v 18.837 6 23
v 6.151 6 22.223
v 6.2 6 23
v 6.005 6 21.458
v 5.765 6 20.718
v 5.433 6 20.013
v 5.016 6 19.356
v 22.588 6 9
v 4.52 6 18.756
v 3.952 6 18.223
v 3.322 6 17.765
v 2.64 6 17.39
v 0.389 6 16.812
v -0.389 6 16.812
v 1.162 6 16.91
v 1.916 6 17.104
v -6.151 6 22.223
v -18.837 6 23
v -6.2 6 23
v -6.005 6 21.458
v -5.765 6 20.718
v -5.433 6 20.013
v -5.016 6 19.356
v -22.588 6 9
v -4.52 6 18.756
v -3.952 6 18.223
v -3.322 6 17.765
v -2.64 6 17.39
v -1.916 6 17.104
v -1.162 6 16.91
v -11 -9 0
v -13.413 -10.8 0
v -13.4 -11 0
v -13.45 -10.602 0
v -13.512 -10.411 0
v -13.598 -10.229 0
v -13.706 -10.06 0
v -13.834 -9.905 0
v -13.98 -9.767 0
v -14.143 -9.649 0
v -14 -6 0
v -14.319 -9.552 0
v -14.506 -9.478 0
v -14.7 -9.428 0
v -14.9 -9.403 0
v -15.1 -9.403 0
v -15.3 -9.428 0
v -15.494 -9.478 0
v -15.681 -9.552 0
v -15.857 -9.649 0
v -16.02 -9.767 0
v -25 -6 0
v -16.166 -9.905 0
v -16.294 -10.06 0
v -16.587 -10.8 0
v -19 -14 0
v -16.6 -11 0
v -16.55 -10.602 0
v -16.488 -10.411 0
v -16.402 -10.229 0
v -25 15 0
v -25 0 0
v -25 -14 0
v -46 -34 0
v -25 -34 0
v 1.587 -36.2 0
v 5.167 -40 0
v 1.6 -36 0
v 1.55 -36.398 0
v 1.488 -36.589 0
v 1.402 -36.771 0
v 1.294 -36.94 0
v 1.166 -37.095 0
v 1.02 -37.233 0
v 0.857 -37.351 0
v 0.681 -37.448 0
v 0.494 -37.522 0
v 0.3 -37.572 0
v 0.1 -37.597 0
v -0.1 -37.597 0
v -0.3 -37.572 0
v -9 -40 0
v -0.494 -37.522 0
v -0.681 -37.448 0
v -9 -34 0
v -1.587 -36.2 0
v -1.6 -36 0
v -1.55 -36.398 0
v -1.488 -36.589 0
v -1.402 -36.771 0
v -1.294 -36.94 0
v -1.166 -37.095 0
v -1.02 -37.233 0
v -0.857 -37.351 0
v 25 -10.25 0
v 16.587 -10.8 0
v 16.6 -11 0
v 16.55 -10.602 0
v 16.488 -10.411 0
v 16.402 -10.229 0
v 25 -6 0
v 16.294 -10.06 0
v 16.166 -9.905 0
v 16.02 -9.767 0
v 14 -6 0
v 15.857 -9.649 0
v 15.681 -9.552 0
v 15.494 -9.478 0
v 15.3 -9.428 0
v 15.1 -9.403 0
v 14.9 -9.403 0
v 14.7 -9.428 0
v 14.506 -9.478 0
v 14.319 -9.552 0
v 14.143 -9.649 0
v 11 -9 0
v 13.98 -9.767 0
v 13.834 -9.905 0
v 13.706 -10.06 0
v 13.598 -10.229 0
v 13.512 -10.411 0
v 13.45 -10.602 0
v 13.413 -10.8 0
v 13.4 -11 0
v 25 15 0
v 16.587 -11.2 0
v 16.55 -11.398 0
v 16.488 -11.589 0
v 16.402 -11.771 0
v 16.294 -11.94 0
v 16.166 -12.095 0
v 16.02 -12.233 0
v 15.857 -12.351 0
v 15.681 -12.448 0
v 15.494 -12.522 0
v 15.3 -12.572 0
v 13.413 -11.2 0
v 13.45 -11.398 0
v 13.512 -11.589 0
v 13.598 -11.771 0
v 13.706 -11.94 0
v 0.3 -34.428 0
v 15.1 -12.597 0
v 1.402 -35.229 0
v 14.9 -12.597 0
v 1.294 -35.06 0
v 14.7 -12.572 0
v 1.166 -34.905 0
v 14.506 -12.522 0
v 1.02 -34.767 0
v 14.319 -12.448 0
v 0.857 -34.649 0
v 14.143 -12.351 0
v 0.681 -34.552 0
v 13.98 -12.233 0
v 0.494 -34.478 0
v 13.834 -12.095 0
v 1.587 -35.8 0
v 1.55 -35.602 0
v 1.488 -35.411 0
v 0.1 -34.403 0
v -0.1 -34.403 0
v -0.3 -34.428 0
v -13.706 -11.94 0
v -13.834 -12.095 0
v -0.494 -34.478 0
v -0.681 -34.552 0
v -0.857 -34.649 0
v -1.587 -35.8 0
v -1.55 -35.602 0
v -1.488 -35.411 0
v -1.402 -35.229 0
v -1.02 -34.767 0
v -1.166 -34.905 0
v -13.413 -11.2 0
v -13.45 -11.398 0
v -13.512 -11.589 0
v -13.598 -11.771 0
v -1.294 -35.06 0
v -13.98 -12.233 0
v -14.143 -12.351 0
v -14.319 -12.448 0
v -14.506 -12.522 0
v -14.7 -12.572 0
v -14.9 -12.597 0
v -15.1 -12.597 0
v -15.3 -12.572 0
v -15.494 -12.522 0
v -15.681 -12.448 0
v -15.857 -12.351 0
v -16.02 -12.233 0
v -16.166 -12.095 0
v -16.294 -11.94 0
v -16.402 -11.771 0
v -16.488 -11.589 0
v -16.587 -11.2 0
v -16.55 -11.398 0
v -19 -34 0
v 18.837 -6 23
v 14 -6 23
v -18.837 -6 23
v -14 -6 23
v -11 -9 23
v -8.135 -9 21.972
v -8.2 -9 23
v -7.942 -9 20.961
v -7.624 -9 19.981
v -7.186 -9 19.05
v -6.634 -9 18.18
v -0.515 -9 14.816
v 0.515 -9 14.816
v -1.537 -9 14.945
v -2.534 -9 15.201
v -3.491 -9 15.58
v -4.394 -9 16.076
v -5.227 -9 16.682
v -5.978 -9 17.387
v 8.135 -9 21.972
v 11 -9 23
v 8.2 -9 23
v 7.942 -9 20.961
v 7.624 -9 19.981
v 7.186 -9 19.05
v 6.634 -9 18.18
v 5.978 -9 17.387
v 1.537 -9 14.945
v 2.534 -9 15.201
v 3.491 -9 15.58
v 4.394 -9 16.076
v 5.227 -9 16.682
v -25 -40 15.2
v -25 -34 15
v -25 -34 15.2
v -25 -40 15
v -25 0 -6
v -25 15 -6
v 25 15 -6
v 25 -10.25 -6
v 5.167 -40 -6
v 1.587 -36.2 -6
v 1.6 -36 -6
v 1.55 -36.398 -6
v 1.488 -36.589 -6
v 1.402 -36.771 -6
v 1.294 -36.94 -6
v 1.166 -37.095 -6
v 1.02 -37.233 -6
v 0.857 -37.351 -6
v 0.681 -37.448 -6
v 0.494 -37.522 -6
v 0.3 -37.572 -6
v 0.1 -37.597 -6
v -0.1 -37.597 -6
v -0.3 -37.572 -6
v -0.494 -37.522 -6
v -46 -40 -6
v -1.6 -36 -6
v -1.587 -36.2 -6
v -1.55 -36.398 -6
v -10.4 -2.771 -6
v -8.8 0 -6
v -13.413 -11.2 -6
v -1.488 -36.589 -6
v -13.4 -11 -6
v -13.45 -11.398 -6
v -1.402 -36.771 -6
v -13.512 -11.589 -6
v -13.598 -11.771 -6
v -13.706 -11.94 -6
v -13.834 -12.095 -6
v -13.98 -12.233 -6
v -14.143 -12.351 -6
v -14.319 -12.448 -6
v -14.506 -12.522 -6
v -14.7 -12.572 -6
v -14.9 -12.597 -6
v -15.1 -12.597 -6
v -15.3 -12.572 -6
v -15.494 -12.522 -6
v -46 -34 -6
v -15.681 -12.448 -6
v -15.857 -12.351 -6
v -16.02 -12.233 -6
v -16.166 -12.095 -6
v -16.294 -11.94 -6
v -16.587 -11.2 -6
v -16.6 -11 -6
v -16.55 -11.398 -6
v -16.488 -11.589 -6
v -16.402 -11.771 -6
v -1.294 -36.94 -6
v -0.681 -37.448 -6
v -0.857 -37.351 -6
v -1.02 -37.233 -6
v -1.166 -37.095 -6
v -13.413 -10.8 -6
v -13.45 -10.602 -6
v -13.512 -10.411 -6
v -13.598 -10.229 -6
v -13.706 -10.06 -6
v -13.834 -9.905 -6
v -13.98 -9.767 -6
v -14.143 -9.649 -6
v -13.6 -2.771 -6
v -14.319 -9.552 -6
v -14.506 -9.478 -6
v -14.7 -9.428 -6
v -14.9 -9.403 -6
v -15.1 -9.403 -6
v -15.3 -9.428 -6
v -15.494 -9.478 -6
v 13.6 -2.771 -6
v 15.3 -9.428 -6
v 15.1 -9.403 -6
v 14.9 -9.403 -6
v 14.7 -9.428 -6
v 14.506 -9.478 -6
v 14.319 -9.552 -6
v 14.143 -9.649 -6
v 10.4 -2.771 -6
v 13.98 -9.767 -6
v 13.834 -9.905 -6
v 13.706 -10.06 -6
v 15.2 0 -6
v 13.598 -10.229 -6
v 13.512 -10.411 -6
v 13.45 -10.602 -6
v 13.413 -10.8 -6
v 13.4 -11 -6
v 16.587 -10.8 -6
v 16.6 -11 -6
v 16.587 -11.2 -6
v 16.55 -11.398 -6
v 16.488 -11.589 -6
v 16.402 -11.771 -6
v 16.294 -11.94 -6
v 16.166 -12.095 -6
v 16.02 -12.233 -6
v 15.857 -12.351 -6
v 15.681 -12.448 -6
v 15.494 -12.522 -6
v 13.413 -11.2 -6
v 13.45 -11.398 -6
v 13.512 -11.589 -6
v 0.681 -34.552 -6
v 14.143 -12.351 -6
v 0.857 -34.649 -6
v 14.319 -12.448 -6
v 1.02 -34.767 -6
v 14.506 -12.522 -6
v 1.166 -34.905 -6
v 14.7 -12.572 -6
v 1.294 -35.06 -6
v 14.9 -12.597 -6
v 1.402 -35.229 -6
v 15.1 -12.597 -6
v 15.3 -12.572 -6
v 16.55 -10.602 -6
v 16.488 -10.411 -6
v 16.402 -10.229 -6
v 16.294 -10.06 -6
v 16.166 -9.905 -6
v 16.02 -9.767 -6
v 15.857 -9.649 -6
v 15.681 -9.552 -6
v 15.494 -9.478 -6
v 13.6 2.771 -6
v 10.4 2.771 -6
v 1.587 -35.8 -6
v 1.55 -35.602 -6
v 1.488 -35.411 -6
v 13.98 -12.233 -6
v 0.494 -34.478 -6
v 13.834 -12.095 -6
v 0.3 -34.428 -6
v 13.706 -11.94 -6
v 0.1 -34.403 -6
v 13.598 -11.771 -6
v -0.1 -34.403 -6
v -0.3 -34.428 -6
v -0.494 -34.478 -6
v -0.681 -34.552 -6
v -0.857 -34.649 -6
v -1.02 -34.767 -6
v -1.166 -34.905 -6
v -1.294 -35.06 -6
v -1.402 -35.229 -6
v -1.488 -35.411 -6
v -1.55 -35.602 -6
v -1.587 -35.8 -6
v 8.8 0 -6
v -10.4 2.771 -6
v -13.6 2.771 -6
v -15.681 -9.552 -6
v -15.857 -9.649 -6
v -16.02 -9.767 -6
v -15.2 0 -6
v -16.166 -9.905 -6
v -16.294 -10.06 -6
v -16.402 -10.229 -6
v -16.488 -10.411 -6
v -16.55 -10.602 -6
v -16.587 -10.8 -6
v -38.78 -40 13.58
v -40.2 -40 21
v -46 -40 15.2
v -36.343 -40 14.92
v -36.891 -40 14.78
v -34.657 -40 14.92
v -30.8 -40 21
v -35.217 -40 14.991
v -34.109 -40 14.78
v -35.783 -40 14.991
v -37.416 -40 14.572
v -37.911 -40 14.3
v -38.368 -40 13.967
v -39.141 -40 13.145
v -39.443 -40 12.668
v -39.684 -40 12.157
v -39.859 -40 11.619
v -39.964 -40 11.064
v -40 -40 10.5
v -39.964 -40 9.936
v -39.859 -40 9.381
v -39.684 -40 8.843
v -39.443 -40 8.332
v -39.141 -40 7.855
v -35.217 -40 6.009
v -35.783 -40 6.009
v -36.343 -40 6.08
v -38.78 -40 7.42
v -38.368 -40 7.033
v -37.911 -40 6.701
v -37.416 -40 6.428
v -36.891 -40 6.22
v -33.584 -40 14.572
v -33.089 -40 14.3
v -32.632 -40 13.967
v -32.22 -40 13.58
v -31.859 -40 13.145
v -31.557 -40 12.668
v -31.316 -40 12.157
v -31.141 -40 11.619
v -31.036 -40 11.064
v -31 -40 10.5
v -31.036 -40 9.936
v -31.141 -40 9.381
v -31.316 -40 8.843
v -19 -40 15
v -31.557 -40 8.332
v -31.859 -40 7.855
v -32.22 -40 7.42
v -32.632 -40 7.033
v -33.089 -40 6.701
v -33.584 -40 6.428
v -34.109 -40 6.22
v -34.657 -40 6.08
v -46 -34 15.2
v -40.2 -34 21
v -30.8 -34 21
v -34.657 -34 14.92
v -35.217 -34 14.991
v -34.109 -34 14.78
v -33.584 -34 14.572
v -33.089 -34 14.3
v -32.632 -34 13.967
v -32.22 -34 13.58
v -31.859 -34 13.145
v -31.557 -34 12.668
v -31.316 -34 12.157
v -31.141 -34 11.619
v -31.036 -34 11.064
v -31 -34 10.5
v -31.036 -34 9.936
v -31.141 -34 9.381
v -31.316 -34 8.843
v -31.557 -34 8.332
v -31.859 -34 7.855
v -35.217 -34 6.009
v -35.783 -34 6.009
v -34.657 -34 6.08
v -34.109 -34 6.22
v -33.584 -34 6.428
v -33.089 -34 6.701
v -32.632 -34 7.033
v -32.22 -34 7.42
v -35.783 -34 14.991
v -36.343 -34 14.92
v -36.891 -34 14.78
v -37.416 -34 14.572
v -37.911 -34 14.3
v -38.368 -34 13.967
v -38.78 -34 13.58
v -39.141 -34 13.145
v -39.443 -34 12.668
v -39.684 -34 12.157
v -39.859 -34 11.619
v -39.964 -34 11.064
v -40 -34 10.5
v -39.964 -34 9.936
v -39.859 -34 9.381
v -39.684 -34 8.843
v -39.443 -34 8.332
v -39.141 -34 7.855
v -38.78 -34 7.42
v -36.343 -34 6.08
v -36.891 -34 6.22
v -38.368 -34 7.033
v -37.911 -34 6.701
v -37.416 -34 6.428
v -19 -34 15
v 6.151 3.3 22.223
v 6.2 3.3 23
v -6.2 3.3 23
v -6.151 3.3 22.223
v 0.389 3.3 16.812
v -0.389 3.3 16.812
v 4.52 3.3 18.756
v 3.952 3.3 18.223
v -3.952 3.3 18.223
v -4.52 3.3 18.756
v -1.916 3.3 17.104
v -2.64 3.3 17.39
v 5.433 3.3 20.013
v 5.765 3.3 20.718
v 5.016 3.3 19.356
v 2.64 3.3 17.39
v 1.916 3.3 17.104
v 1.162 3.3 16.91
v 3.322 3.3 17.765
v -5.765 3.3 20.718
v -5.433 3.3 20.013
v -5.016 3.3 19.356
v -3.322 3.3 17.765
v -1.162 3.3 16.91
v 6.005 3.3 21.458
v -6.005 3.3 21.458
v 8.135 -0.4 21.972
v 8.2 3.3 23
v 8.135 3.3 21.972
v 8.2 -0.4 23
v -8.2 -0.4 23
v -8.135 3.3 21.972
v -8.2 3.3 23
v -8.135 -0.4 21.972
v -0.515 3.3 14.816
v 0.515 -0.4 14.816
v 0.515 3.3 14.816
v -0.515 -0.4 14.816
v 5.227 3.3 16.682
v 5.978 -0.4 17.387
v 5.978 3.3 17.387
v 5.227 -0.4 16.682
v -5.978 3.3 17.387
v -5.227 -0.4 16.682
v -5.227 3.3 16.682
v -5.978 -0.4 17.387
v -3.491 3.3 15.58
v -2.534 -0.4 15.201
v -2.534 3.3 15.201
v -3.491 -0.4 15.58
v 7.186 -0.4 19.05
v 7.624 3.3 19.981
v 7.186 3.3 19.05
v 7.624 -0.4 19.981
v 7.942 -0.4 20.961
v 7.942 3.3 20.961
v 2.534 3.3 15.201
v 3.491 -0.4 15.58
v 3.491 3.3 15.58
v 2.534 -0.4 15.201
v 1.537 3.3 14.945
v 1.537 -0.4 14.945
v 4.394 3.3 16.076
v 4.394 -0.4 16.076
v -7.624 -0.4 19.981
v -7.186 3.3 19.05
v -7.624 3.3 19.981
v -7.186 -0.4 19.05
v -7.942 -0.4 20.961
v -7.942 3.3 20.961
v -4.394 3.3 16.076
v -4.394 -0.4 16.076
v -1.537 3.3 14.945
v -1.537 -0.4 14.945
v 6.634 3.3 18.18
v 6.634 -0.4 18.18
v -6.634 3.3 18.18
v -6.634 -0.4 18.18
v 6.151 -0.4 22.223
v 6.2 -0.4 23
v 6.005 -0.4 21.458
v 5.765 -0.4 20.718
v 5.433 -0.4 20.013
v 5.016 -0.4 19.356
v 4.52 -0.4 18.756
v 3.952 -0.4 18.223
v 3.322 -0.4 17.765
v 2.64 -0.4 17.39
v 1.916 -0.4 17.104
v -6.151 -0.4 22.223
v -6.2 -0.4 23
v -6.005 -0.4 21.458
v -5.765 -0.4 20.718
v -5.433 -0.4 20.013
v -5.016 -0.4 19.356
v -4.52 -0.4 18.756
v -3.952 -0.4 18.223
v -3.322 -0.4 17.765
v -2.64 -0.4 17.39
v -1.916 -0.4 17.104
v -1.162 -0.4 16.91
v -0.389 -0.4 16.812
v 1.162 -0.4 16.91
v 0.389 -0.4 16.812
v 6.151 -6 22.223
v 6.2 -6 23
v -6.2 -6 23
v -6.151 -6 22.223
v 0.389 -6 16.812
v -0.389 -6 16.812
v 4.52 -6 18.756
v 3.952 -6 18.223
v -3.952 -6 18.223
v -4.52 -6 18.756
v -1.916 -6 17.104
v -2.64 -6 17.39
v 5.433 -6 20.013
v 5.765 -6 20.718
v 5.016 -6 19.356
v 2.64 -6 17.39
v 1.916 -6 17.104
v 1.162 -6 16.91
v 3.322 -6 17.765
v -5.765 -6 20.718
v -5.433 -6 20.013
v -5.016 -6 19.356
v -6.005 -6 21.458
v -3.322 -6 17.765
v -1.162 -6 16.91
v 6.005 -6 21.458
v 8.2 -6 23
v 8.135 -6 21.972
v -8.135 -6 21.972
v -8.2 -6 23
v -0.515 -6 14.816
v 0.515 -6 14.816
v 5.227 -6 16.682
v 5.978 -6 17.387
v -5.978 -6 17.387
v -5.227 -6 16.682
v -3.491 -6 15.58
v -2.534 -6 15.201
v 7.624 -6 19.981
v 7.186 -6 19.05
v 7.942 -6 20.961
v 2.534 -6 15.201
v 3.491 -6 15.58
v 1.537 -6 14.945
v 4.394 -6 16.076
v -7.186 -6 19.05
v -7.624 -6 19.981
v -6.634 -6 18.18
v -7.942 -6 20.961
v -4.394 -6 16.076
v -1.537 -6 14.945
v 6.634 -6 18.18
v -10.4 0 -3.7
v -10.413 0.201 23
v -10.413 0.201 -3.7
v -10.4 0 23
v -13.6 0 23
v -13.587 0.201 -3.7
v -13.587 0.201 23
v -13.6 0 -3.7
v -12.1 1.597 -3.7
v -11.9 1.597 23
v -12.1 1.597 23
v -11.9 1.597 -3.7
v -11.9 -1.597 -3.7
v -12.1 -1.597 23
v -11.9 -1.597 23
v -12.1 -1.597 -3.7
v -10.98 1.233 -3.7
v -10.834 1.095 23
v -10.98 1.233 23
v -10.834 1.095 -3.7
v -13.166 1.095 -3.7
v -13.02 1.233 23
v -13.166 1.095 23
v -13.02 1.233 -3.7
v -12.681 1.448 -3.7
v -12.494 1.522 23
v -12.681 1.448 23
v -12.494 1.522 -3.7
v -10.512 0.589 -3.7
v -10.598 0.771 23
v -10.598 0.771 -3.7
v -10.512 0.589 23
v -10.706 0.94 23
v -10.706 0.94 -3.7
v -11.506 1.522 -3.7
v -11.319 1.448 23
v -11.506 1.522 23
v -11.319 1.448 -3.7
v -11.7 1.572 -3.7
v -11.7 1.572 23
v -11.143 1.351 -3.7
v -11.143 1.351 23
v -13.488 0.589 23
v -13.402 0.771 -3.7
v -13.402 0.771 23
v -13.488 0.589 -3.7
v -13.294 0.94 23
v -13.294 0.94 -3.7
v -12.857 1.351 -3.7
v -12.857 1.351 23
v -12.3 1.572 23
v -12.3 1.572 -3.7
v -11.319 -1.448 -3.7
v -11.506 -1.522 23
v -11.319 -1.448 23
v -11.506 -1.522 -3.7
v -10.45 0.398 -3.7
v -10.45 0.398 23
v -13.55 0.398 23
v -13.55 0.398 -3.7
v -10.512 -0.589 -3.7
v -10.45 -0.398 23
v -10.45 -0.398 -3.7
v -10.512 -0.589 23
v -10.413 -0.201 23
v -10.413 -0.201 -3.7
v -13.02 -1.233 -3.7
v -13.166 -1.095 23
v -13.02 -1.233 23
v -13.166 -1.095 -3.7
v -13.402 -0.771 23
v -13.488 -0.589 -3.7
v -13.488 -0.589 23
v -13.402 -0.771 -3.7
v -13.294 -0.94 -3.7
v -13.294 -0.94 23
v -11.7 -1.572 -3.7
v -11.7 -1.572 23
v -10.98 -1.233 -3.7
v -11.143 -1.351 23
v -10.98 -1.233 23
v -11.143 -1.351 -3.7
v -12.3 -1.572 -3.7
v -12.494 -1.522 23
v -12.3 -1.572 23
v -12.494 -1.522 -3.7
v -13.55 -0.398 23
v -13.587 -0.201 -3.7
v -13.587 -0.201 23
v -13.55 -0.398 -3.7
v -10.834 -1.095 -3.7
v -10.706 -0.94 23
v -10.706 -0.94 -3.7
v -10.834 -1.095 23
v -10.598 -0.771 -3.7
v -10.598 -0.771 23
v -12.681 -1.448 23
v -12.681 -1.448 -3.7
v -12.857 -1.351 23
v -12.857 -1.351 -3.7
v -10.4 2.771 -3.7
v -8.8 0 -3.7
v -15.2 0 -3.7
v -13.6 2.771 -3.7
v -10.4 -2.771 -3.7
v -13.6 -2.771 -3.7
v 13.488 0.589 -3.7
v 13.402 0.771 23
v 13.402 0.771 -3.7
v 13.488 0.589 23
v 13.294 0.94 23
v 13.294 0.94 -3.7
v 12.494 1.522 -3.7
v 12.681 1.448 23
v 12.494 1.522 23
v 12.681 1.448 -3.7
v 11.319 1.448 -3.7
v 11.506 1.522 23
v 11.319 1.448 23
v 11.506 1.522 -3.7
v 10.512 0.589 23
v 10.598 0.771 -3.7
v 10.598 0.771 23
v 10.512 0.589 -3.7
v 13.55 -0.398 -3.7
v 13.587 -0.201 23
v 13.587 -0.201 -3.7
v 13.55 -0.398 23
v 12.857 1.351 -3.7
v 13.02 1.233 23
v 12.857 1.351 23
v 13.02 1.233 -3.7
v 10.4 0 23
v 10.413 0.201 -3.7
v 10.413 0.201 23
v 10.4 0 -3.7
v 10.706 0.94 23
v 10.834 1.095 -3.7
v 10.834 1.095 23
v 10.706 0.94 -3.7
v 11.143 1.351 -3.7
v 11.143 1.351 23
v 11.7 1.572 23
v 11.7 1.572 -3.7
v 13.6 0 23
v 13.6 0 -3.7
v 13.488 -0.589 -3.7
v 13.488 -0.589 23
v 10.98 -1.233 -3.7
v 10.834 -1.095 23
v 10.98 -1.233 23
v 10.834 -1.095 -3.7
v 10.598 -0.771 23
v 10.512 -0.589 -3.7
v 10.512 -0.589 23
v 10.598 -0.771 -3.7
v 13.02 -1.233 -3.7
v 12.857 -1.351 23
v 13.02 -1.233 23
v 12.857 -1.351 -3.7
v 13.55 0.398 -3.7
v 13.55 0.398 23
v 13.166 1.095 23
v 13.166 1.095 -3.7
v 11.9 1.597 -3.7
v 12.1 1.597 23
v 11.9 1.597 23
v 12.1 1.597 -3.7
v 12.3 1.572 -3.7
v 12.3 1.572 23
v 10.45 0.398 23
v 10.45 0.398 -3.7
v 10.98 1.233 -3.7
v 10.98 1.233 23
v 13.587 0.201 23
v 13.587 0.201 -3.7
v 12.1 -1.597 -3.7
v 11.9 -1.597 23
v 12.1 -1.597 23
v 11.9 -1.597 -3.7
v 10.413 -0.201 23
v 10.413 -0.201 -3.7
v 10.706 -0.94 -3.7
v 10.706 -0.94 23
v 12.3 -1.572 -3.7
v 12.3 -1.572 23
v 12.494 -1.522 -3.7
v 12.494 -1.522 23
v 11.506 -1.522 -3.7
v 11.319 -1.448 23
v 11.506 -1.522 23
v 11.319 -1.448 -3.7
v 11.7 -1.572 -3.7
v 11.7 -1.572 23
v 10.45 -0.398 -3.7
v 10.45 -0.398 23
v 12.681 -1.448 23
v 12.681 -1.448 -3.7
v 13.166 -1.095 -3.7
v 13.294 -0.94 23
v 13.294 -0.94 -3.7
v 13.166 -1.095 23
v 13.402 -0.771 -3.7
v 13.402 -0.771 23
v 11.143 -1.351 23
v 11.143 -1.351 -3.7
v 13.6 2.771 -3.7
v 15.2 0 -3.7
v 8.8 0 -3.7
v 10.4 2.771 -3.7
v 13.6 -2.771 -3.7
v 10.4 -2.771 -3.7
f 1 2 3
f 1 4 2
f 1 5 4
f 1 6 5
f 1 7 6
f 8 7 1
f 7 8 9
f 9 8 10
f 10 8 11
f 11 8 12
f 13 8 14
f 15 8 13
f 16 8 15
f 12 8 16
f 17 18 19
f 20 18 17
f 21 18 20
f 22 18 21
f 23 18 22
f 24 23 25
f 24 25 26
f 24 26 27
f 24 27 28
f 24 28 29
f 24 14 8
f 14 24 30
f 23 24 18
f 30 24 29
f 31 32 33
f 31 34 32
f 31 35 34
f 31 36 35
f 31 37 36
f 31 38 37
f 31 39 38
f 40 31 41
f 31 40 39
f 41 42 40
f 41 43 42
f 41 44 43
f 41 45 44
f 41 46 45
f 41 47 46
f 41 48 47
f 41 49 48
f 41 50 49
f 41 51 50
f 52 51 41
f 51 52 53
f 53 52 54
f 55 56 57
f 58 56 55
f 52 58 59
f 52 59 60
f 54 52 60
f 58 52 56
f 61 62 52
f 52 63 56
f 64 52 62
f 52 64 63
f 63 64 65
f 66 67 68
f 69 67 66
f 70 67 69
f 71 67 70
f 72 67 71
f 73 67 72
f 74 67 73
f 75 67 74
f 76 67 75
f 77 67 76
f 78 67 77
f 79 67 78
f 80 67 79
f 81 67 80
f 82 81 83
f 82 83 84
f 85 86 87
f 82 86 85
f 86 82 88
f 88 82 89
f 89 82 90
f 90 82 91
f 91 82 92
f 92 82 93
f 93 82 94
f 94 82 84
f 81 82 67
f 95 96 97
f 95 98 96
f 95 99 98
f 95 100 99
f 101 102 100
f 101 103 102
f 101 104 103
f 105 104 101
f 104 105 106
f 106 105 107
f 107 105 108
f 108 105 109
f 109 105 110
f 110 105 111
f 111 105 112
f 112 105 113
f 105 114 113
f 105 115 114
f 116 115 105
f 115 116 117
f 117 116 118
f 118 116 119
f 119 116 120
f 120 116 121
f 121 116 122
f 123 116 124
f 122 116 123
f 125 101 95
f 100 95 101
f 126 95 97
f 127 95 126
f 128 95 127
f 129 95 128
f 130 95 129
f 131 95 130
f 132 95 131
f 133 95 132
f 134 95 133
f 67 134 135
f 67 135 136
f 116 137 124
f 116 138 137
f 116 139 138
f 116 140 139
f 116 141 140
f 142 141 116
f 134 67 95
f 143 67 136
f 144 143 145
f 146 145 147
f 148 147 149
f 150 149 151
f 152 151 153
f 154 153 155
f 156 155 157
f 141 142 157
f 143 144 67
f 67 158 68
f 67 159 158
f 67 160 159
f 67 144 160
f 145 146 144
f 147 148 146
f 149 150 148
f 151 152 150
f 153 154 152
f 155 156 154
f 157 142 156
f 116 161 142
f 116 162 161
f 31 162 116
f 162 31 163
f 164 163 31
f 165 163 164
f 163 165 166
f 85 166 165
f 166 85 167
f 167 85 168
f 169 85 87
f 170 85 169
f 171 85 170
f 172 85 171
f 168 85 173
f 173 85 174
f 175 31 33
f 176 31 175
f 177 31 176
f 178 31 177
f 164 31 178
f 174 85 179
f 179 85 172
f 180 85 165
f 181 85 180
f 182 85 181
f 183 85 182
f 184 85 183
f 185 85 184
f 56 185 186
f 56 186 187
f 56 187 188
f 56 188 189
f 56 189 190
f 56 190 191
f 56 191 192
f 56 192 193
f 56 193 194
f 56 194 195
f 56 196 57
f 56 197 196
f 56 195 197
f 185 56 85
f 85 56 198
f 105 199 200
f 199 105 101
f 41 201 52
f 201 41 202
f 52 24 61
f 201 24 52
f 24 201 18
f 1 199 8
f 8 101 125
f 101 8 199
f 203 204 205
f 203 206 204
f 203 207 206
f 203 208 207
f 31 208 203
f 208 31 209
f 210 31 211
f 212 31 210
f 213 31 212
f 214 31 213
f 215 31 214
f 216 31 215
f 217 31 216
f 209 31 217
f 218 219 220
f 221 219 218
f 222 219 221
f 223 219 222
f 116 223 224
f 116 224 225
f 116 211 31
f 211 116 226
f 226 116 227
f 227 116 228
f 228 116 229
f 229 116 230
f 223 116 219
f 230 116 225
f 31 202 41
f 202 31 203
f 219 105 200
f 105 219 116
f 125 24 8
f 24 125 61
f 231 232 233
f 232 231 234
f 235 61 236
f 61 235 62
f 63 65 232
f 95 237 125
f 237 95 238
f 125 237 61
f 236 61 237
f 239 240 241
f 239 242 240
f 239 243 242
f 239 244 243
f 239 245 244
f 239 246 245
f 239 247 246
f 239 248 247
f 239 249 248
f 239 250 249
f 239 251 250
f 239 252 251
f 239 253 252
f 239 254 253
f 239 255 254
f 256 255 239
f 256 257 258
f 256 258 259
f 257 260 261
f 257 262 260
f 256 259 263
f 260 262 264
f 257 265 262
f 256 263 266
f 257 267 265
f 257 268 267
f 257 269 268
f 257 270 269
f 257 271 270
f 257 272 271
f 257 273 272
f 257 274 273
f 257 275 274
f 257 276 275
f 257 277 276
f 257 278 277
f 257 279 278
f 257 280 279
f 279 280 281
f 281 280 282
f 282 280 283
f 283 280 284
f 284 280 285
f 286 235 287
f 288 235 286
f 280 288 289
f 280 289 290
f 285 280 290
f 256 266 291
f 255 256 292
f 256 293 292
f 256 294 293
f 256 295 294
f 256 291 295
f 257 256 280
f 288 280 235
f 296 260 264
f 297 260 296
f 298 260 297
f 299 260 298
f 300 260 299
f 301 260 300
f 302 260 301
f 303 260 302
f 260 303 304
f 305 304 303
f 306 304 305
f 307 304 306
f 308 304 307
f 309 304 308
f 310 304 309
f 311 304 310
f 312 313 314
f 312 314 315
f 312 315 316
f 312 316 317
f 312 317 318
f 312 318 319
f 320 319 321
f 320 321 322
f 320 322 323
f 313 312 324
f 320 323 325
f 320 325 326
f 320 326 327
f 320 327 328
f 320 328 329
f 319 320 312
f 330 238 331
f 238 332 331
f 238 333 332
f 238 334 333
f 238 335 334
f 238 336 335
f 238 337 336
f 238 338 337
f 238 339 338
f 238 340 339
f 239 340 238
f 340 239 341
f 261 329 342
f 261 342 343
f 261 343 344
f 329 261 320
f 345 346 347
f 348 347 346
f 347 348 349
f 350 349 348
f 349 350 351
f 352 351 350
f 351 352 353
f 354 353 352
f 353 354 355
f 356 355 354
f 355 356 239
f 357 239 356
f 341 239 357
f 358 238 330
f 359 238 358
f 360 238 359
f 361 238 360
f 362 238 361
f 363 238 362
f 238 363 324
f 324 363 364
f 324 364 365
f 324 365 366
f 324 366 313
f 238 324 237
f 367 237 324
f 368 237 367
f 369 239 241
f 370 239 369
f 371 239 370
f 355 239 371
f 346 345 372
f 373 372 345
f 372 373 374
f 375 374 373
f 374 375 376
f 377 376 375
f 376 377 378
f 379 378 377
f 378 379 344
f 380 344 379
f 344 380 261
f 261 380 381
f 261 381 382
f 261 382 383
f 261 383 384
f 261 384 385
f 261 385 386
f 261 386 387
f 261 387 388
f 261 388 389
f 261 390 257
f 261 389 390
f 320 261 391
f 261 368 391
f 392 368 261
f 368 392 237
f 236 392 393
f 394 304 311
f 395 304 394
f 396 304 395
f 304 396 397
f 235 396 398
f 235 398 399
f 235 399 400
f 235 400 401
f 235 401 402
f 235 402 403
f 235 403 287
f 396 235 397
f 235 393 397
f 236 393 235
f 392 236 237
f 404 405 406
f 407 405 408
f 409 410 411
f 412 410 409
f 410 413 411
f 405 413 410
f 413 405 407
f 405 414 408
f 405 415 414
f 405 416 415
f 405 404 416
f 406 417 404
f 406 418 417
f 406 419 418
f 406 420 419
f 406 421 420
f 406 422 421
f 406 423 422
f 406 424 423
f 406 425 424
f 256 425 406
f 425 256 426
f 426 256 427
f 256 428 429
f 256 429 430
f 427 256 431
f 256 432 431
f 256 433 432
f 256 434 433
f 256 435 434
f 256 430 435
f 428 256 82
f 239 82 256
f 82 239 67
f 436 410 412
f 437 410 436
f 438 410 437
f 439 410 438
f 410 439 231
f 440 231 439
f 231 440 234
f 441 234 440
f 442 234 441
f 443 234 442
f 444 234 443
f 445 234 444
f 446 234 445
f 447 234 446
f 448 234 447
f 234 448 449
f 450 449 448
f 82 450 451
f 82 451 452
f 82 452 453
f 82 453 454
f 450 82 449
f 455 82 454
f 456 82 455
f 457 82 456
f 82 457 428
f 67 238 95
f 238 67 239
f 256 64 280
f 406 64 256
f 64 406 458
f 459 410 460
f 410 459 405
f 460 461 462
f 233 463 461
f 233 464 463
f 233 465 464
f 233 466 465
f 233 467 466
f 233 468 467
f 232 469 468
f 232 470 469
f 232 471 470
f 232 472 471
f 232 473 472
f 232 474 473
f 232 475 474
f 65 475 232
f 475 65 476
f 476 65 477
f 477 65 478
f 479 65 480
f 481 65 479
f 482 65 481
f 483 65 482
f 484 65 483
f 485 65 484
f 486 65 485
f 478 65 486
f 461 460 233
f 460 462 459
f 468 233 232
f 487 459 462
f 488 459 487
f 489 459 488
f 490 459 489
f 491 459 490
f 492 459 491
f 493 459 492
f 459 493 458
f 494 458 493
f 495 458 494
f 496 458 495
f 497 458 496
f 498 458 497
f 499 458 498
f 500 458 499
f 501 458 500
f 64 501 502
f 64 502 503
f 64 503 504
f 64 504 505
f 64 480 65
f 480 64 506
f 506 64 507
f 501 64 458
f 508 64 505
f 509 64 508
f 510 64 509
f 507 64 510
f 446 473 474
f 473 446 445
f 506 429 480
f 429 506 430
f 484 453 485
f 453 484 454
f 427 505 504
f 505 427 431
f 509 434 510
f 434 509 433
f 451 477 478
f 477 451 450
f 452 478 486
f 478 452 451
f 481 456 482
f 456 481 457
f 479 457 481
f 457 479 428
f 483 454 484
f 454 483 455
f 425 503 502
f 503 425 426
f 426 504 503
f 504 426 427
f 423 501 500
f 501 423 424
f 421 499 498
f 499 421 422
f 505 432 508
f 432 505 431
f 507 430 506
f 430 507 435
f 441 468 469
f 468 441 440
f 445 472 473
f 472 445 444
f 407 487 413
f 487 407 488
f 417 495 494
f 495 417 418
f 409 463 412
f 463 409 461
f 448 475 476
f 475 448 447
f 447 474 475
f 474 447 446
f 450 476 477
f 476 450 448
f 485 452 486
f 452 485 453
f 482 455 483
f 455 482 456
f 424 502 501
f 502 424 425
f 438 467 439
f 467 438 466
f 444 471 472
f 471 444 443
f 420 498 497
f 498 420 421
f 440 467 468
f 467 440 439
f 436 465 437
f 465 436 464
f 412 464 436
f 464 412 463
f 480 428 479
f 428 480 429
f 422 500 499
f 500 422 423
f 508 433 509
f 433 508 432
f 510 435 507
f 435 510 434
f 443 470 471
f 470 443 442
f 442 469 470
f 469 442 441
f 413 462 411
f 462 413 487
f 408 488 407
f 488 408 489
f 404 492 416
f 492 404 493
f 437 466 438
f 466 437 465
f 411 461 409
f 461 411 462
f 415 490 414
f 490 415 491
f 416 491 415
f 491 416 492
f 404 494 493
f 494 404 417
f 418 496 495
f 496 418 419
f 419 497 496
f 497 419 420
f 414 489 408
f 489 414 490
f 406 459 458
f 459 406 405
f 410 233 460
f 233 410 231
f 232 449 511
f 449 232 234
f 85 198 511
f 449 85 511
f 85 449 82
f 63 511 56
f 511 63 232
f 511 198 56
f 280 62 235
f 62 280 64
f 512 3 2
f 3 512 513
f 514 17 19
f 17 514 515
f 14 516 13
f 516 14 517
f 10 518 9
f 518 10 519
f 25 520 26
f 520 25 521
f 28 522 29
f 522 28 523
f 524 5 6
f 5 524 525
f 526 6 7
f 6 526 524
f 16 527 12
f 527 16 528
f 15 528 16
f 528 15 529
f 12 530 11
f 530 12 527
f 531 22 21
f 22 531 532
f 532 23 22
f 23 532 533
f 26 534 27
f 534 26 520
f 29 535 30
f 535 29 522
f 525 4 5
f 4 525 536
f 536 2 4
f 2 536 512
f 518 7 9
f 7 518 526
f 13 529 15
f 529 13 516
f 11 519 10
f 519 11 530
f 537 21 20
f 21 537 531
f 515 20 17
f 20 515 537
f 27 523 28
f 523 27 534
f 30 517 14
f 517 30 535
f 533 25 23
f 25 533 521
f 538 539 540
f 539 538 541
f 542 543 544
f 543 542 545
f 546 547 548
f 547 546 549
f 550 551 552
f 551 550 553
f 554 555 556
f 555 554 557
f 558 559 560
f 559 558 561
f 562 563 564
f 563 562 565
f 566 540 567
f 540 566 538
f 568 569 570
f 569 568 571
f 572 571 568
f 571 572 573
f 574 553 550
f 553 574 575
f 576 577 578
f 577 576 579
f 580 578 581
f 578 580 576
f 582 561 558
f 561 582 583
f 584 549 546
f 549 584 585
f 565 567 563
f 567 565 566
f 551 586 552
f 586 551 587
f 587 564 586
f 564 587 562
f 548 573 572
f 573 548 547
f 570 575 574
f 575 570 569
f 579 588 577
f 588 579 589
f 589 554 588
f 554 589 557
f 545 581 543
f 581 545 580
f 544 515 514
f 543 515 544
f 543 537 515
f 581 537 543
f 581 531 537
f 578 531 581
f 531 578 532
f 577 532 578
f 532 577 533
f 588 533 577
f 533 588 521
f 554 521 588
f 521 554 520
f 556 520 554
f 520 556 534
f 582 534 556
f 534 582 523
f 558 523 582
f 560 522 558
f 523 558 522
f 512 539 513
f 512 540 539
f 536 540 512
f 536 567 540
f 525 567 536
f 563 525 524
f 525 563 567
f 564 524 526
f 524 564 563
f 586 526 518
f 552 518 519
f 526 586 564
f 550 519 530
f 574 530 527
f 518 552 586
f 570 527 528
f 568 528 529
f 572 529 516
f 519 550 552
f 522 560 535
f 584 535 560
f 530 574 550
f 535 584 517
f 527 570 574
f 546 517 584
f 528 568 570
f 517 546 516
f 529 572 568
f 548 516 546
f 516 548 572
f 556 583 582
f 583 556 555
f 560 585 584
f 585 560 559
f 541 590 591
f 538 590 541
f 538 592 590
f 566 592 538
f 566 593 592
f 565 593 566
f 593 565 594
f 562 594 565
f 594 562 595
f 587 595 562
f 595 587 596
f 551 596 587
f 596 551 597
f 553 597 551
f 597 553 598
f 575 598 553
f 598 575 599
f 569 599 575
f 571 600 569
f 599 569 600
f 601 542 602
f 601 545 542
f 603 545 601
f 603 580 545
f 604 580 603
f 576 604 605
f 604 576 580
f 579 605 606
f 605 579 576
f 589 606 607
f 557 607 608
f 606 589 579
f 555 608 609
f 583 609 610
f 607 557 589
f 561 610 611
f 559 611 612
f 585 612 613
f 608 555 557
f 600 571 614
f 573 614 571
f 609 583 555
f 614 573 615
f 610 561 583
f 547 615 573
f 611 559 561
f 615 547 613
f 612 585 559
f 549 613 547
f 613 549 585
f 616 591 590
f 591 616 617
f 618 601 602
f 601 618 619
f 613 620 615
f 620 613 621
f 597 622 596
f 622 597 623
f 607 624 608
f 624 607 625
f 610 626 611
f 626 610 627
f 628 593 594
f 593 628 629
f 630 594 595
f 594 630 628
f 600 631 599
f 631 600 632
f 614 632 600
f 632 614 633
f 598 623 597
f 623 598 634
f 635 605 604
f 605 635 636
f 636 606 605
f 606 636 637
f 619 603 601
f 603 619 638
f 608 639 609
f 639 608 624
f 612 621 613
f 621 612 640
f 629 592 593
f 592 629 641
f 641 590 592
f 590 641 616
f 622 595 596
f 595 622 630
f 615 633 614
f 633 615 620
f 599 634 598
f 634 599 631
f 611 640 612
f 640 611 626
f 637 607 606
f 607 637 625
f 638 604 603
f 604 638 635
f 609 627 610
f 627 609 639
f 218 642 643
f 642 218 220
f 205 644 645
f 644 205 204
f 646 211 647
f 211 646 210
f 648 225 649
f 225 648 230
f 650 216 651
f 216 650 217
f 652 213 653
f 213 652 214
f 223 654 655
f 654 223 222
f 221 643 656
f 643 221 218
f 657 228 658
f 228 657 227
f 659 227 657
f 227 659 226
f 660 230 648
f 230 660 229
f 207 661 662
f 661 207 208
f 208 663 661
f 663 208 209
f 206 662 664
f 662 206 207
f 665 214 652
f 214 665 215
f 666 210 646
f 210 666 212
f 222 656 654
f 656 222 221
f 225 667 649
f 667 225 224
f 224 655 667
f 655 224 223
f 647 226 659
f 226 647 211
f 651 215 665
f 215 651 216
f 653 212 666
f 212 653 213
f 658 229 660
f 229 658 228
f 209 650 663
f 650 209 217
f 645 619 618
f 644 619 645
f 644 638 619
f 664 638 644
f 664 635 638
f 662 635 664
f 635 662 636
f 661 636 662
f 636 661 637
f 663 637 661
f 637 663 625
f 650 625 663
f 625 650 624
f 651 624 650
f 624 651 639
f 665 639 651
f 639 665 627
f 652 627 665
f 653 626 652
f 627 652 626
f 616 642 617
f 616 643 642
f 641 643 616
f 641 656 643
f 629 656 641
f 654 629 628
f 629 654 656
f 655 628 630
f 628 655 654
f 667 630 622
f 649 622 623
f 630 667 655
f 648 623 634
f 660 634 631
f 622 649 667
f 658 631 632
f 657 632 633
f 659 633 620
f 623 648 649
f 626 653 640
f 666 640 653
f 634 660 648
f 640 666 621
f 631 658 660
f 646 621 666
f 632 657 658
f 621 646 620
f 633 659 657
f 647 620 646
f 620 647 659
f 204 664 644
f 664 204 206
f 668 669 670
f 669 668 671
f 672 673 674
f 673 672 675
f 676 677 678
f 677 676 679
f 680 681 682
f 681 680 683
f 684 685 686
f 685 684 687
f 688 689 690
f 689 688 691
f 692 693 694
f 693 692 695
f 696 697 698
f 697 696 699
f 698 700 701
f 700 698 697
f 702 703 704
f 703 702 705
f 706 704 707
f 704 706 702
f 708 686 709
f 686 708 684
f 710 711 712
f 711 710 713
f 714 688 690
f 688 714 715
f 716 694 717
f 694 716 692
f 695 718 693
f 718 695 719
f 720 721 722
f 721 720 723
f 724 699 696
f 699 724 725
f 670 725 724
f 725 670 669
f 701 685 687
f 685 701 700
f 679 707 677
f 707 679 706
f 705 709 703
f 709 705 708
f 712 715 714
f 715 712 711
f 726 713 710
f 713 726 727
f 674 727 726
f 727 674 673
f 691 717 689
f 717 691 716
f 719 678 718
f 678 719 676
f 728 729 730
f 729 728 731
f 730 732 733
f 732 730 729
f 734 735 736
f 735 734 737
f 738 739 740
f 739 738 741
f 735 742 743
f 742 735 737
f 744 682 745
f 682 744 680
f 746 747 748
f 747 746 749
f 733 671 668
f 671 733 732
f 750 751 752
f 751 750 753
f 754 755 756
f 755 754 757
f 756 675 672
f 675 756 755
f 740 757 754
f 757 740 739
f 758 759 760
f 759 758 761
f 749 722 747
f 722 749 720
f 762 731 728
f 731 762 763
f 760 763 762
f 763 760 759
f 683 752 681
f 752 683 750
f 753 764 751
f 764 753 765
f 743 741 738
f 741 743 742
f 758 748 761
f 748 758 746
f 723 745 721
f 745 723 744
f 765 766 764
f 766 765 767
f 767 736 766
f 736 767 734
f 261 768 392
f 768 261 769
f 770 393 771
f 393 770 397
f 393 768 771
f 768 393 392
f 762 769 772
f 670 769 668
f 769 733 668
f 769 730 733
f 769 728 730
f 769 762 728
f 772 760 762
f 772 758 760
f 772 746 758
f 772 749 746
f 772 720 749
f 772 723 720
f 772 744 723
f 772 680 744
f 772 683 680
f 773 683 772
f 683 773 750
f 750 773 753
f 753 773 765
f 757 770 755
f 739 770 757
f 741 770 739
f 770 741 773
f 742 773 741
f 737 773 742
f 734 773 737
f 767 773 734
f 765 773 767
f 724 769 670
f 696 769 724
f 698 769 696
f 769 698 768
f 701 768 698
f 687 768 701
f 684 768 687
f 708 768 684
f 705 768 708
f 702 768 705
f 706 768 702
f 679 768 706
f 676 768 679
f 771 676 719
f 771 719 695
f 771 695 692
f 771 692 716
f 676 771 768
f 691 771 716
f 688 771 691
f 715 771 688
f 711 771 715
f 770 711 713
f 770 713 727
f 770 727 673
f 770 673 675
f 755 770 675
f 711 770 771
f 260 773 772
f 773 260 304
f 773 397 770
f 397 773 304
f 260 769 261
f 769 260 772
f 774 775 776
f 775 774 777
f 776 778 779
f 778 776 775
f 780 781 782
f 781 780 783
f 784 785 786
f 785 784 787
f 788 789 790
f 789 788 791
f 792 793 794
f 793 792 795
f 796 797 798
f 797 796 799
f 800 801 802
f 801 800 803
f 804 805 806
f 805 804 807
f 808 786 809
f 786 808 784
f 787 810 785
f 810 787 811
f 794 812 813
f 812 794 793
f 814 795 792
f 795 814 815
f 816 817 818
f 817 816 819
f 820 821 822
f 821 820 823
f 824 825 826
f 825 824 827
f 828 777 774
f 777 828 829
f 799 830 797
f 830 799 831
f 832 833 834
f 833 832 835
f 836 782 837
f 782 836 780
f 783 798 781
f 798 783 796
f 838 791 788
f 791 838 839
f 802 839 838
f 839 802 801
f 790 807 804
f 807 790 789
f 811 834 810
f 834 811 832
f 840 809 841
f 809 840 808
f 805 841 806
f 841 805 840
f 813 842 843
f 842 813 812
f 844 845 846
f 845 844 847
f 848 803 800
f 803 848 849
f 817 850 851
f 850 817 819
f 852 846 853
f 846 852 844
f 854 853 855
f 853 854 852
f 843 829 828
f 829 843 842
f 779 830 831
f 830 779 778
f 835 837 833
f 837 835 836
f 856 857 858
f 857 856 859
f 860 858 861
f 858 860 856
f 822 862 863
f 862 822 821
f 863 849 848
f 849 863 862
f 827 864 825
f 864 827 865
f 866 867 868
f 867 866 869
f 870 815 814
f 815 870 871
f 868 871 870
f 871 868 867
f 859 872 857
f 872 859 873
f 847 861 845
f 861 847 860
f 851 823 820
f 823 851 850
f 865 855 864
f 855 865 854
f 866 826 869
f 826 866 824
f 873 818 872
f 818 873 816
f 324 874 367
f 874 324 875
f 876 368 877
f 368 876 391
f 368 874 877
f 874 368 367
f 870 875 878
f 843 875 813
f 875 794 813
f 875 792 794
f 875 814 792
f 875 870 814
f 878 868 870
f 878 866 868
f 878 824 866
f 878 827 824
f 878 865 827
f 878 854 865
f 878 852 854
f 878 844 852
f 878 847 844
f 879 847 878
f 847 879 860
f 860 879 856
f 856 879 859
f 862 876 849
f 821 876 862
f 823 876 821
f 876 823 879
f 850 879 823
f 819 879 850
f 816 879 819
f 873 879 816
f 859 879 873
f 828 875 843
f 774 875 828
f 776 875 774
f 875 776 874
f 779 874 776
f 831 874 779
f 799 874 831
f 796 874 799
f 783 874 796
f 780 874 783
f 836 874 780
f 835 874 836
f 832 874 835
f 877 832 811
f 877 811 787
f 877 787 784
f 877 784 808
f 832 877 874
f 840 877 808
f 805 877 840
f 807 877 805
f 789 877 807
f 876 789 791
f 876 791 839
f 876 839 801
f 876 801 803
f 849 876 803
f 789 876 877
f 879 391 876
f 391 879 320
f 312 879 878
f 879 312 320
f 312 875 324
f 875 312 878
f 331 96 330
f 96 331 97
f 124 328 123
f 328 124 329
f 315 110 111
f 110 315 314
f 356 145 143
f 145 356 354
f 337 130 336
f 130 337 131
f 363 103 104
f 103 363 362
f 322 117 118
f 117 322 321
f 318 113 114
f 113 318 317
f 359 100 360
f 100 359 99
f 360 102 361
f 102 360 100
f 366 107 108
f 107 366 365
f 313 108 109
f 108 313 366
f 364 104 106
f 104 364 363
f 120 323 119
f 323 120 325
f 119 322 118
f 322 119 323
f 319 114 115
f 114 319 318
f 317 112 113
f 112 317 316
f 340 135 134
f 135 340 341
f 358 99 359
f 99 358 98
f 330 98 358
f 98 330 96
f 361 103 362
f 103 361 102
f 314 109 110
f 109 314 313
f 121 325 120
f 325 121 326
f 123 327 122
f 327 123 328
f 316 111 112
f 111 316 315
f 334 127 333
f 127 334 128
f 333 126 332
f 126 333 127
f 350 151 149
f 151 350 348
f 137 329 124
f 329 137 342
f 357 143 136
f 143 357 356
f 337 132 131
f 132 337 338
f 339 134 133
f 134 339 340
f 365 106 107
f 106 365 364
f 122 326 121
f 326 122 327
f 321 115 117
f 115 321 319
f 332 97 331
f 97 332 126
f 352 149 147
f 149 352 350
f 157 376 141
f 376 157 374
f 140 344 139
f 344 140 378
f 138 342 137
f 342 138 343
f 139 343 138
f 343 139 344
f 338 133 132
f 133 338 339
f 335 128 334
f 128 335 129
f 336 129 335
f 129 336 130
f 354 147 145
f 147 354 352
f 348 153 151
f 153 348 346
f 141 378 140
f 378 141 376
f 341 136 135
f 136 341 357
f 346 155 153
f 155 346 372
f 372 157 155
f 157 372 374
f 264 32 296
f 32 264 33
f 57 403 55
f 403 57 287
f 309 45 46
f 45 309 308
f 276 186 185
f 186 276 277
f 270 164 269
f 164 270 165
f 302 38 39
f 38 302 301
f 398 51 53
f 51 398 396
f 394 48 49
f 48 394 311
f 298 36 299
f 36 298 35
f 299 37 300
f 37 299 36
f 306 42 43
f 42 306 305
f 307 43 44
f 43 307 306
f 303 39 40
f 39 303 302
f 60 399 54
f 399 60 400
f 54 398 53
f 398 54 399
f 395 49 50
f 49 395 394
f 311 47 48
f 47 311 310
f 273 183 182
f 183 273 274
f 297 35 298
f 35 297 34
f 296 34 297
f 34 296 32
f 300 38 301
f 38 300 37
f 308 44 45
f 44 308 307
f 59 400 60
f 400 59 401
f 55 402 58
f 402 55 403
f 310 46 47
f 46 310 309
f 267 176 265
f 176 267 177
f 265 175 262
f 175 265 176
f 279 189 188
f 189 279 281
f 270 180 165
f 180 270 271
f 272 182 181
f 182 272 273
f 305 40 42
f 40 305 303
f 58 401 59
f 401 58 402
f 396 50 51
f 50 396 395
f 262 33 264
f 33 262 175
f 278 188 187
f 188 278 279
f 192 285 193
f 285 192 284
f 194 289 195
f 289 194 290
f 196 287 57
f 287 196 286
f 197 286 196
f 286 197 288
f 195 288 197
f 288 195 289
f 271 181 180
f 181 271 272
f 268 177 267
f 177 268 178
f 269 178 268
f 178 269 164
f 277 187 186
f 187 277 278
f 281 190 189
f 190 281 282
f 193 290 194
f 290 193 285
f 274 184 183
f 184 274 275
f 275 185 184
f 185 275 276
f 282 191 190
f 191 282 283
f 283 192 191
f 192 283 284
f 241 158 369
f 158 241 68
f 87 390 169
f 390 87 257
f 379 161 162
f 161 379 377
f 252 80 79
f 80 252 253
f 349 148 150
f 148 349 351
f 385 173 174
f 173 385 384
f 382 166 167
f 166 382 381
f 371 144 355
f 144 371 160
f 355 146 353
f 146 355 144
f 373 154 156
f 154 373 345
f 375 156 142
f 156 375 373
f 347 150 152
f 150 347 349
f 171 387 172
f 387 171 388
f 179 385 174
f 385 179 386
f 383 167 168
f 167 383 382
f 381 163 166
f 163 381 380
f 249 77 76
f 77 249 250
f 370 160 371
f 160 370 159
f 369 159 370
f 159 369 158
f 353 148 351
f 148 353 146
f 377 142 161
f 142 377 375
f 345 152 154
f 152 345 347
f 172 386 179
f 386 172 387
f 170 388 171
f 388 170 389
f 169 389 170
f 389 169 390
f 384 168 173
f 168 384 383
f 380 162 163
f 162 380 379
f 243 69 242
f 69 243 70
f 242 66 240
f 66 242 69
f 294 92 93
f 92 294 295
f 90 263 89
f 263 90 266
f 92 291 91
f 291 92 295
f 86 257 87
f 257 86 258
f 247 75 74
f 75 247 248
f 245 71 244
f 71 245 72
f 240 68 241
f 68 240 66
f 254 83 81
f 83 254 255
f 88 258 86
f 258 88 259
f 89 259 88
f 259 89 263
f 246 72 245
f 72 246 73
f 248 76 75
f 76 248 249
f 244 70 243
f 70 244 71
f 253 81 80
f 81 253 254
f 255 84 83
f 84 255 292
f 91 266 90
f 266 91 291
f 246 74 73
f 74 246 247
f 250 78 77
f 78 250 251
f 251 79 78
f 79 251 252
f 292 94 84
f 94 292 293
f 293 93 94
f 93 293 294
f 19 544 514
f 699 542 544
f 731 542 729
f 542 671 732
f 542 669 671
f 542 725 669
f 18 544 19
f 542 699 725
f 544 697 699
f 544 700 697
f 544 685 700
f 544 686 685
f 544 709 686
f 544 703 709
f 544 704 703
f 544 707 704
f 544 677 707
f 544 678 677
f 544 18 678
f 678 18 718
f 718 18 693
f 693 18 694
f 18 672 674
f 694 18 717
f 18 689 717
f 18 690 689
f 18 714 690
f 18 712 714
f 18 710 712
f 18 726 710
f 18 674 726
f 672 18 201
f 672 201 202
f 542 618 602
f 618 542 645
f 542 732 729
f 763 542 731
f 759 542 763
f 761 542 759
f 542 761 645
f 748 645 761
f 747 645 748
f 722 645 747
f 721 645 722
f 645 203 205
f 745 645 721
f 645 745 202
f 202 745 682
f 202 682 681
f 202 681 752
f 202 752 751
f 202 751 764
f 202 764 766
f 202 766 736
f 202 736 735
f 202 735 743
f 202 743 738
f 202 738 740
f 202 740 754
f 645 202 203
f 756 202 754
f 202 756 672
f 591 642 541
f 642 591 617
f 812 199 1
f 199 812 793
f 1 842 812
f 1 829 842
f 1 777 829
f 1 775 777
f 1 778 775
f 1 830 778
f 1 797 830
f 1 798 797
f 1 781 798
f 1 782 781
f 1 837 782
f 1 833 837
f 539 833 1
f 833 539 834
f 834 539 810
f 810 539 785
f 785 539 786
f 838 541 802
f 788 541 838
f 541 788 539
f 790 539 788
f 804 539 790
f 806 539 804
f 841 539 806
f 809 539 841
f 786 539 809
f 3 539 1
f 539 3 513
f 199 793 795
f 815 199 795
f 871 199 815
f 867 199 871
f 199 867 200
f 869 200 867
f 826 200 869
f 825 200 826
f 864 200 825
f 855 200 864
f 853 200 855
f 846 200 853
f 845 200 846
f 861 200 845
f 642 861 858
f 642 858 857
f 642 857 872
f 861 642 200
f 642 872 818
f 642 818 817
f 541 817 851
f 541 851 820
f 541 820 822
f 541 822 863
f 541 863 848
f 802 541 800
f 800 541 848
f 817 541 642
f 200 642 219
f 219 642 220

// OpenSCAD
//head
include <MCAD/nuts_and_bolts.scad>;
$fn=50;
mode=1; //0-full 1-base part 2-clamp
extruder=0;  // 0 - model 1-additivities
oversize=0.2;
hole_height=18+5;
detector_diameter=9;
detector_washer=1+20;
detector_edge=15;
plate_width=50;
echo ("Y_PROBE_OFFSET_FROM_EXTRUDER =",(hole_height-detector_washer/2));
echo ("X_PROBE_OFFSET_FROM_EXTRUDER =",-(plate_width/2+detector_washer/2));
//subs
module prism(l, w, h) {
	translate([0, l, 0]) rotate( a= [90, 0, 0]) 
	linear_extrude(height = l) polygon(points = [
		[0, 0],
		[w, 0],
		[0, h]
	], paths=[[0,1,2,0]]);
}
module trapeze(w1,w2,d,h){
    down=min(w1,w2);
    low=abs(w1-w2)/2;
    translate([down/-2,d/-2,0]){
        cube([down,d,h]);
        prism(d,-low,h);
    }
    translate([down/2,d/-2,0])prism(d,low,h);
}

//hotend
module head_hole(cap=6){
  inner=5.6; //v5
  //inner=6;   //v6
  top=3.7;
  bottom=3;
    translate([0,0,bottom+inner+top-0.1])cylinder(5,r=cap+oversize);
    translate([0,0,bottom+inner])cylinder(top,r=8+oversize);
    translate([0,0,bottom-0.1])cylinder(inner+0.2,r=6+oversize);
    translate([0,0,-0.1])cylinder(bottom+0.1,r=8+oversize);
}
module detector_clamp(){
    translate([0,0,6])cube([6,6,detector_edge]);
    translate([6,0,6])prism(6,10,detector_edge);
    translate([6,6,6])rotate([0,0,90,0])prism(6,20,detector_edge);
    translate([0,6,0])rotate([90,0,180])prism(6,detector_washer,40-6);
    translate([-detector_washer,0,0])difference(){
        cube([detector_washer,6,6+detector_washer]);
        translate([detector_washer/2,-0.1,detector_washer/2+6])rotate([-90,0,0])cylinder(6.2,d=detector_diameter);
        translate([-0.1,-0.1,detector_washer+6+0.1])rotate([0,90,0])prism(6.2,6,6);
        translate([detector_washer+0.1,-0.1,detector_washer+6+0.1])rotate([0,180,0])prism(6.2,6,6);
    }
}
module full (){
    h=28+7;
    w=plate_width;
    base=11;
    plate=55;
difference(){
    union(){
        trapeze(w,w-2*h*tan(15),12,h);
        translate([0,12/-2,h/2])rotate([90,0,0])trapeze(22+3*2,22,h,3);
        translate([0,6,0])
            intersection(){
                rotate([0,0,90])translate([0,-w/2,0])prism(w,9,9);
                translate([0,9/2,0])trapeze(w,w-2*h*tan(15),9,h);
            }
        //plate
        translate([-w/2,-plate+9+6,-6])
         {
          difference(){
            cube([w,plate,6]);
            translate([w+0.1,-0.1,-0.1])rotate([90,0,180])prism(6.2,20,30);
          }
          detector_clamp();
        }
    }
    translate([0,-9,hole_height])rotate([-90,0,0])head_hole(6);
    
    for (s=[-12,12]){
        translate([s,0,-6-0.1]){ cylinder(h+6,r=1.6); nutHole(3); }
        translate([s,0,h-3])cylinder(3.1,r=3);
    }
    //base holes
    translate([0,-base,0])
    {
        translate([15,0,-6-0.1])cylinder(6.2,r=1.6);
        translate([-15,0,-6-0.1])cylinder(6.2,r=1.6);
        translate([0,-25,-6-0.1])cylinder(6.2,r=1.6);
    }
    //translate([0,-21,-6-0.1])cylinder(6.2,r=9);    
}
}

if (mode==0)
    full();
else
if (mode==1)
difference(){
    full();
    translate([-30,-10,hole_height])cube([60,20,hole_height]);
}
else
if (mode==2){ rotate([0,180,0])translate([0,0,-hole_height])intersection(){
    full();
    translate([-30,-10,hole_height])cube([60,20,hole_height]);
}
}
if (extruder==1)
	translate([0,0,hole_height]){
	translate([-0,-60,0])
	rotate([0,-90,0])
	translate([-8.7,0,-15.85])import("E3D V6 1.75 Uni model.STL", convexity=3);

	translate([0,-25,0])
	rotate([90,-90,0])
	translate([15.9,-2.5,-25])scale(0.85)import("E3D_Duct_wo_Plate.stl", convexity=3);

	translate([5,-29.5,13])rotate([90,-90,0])
	mirror()rotate([0,32.5,0])
	translate([2,3,-35-15])import("E3D_Fan_Nozzle_v2.stl", convexity=3);
}
